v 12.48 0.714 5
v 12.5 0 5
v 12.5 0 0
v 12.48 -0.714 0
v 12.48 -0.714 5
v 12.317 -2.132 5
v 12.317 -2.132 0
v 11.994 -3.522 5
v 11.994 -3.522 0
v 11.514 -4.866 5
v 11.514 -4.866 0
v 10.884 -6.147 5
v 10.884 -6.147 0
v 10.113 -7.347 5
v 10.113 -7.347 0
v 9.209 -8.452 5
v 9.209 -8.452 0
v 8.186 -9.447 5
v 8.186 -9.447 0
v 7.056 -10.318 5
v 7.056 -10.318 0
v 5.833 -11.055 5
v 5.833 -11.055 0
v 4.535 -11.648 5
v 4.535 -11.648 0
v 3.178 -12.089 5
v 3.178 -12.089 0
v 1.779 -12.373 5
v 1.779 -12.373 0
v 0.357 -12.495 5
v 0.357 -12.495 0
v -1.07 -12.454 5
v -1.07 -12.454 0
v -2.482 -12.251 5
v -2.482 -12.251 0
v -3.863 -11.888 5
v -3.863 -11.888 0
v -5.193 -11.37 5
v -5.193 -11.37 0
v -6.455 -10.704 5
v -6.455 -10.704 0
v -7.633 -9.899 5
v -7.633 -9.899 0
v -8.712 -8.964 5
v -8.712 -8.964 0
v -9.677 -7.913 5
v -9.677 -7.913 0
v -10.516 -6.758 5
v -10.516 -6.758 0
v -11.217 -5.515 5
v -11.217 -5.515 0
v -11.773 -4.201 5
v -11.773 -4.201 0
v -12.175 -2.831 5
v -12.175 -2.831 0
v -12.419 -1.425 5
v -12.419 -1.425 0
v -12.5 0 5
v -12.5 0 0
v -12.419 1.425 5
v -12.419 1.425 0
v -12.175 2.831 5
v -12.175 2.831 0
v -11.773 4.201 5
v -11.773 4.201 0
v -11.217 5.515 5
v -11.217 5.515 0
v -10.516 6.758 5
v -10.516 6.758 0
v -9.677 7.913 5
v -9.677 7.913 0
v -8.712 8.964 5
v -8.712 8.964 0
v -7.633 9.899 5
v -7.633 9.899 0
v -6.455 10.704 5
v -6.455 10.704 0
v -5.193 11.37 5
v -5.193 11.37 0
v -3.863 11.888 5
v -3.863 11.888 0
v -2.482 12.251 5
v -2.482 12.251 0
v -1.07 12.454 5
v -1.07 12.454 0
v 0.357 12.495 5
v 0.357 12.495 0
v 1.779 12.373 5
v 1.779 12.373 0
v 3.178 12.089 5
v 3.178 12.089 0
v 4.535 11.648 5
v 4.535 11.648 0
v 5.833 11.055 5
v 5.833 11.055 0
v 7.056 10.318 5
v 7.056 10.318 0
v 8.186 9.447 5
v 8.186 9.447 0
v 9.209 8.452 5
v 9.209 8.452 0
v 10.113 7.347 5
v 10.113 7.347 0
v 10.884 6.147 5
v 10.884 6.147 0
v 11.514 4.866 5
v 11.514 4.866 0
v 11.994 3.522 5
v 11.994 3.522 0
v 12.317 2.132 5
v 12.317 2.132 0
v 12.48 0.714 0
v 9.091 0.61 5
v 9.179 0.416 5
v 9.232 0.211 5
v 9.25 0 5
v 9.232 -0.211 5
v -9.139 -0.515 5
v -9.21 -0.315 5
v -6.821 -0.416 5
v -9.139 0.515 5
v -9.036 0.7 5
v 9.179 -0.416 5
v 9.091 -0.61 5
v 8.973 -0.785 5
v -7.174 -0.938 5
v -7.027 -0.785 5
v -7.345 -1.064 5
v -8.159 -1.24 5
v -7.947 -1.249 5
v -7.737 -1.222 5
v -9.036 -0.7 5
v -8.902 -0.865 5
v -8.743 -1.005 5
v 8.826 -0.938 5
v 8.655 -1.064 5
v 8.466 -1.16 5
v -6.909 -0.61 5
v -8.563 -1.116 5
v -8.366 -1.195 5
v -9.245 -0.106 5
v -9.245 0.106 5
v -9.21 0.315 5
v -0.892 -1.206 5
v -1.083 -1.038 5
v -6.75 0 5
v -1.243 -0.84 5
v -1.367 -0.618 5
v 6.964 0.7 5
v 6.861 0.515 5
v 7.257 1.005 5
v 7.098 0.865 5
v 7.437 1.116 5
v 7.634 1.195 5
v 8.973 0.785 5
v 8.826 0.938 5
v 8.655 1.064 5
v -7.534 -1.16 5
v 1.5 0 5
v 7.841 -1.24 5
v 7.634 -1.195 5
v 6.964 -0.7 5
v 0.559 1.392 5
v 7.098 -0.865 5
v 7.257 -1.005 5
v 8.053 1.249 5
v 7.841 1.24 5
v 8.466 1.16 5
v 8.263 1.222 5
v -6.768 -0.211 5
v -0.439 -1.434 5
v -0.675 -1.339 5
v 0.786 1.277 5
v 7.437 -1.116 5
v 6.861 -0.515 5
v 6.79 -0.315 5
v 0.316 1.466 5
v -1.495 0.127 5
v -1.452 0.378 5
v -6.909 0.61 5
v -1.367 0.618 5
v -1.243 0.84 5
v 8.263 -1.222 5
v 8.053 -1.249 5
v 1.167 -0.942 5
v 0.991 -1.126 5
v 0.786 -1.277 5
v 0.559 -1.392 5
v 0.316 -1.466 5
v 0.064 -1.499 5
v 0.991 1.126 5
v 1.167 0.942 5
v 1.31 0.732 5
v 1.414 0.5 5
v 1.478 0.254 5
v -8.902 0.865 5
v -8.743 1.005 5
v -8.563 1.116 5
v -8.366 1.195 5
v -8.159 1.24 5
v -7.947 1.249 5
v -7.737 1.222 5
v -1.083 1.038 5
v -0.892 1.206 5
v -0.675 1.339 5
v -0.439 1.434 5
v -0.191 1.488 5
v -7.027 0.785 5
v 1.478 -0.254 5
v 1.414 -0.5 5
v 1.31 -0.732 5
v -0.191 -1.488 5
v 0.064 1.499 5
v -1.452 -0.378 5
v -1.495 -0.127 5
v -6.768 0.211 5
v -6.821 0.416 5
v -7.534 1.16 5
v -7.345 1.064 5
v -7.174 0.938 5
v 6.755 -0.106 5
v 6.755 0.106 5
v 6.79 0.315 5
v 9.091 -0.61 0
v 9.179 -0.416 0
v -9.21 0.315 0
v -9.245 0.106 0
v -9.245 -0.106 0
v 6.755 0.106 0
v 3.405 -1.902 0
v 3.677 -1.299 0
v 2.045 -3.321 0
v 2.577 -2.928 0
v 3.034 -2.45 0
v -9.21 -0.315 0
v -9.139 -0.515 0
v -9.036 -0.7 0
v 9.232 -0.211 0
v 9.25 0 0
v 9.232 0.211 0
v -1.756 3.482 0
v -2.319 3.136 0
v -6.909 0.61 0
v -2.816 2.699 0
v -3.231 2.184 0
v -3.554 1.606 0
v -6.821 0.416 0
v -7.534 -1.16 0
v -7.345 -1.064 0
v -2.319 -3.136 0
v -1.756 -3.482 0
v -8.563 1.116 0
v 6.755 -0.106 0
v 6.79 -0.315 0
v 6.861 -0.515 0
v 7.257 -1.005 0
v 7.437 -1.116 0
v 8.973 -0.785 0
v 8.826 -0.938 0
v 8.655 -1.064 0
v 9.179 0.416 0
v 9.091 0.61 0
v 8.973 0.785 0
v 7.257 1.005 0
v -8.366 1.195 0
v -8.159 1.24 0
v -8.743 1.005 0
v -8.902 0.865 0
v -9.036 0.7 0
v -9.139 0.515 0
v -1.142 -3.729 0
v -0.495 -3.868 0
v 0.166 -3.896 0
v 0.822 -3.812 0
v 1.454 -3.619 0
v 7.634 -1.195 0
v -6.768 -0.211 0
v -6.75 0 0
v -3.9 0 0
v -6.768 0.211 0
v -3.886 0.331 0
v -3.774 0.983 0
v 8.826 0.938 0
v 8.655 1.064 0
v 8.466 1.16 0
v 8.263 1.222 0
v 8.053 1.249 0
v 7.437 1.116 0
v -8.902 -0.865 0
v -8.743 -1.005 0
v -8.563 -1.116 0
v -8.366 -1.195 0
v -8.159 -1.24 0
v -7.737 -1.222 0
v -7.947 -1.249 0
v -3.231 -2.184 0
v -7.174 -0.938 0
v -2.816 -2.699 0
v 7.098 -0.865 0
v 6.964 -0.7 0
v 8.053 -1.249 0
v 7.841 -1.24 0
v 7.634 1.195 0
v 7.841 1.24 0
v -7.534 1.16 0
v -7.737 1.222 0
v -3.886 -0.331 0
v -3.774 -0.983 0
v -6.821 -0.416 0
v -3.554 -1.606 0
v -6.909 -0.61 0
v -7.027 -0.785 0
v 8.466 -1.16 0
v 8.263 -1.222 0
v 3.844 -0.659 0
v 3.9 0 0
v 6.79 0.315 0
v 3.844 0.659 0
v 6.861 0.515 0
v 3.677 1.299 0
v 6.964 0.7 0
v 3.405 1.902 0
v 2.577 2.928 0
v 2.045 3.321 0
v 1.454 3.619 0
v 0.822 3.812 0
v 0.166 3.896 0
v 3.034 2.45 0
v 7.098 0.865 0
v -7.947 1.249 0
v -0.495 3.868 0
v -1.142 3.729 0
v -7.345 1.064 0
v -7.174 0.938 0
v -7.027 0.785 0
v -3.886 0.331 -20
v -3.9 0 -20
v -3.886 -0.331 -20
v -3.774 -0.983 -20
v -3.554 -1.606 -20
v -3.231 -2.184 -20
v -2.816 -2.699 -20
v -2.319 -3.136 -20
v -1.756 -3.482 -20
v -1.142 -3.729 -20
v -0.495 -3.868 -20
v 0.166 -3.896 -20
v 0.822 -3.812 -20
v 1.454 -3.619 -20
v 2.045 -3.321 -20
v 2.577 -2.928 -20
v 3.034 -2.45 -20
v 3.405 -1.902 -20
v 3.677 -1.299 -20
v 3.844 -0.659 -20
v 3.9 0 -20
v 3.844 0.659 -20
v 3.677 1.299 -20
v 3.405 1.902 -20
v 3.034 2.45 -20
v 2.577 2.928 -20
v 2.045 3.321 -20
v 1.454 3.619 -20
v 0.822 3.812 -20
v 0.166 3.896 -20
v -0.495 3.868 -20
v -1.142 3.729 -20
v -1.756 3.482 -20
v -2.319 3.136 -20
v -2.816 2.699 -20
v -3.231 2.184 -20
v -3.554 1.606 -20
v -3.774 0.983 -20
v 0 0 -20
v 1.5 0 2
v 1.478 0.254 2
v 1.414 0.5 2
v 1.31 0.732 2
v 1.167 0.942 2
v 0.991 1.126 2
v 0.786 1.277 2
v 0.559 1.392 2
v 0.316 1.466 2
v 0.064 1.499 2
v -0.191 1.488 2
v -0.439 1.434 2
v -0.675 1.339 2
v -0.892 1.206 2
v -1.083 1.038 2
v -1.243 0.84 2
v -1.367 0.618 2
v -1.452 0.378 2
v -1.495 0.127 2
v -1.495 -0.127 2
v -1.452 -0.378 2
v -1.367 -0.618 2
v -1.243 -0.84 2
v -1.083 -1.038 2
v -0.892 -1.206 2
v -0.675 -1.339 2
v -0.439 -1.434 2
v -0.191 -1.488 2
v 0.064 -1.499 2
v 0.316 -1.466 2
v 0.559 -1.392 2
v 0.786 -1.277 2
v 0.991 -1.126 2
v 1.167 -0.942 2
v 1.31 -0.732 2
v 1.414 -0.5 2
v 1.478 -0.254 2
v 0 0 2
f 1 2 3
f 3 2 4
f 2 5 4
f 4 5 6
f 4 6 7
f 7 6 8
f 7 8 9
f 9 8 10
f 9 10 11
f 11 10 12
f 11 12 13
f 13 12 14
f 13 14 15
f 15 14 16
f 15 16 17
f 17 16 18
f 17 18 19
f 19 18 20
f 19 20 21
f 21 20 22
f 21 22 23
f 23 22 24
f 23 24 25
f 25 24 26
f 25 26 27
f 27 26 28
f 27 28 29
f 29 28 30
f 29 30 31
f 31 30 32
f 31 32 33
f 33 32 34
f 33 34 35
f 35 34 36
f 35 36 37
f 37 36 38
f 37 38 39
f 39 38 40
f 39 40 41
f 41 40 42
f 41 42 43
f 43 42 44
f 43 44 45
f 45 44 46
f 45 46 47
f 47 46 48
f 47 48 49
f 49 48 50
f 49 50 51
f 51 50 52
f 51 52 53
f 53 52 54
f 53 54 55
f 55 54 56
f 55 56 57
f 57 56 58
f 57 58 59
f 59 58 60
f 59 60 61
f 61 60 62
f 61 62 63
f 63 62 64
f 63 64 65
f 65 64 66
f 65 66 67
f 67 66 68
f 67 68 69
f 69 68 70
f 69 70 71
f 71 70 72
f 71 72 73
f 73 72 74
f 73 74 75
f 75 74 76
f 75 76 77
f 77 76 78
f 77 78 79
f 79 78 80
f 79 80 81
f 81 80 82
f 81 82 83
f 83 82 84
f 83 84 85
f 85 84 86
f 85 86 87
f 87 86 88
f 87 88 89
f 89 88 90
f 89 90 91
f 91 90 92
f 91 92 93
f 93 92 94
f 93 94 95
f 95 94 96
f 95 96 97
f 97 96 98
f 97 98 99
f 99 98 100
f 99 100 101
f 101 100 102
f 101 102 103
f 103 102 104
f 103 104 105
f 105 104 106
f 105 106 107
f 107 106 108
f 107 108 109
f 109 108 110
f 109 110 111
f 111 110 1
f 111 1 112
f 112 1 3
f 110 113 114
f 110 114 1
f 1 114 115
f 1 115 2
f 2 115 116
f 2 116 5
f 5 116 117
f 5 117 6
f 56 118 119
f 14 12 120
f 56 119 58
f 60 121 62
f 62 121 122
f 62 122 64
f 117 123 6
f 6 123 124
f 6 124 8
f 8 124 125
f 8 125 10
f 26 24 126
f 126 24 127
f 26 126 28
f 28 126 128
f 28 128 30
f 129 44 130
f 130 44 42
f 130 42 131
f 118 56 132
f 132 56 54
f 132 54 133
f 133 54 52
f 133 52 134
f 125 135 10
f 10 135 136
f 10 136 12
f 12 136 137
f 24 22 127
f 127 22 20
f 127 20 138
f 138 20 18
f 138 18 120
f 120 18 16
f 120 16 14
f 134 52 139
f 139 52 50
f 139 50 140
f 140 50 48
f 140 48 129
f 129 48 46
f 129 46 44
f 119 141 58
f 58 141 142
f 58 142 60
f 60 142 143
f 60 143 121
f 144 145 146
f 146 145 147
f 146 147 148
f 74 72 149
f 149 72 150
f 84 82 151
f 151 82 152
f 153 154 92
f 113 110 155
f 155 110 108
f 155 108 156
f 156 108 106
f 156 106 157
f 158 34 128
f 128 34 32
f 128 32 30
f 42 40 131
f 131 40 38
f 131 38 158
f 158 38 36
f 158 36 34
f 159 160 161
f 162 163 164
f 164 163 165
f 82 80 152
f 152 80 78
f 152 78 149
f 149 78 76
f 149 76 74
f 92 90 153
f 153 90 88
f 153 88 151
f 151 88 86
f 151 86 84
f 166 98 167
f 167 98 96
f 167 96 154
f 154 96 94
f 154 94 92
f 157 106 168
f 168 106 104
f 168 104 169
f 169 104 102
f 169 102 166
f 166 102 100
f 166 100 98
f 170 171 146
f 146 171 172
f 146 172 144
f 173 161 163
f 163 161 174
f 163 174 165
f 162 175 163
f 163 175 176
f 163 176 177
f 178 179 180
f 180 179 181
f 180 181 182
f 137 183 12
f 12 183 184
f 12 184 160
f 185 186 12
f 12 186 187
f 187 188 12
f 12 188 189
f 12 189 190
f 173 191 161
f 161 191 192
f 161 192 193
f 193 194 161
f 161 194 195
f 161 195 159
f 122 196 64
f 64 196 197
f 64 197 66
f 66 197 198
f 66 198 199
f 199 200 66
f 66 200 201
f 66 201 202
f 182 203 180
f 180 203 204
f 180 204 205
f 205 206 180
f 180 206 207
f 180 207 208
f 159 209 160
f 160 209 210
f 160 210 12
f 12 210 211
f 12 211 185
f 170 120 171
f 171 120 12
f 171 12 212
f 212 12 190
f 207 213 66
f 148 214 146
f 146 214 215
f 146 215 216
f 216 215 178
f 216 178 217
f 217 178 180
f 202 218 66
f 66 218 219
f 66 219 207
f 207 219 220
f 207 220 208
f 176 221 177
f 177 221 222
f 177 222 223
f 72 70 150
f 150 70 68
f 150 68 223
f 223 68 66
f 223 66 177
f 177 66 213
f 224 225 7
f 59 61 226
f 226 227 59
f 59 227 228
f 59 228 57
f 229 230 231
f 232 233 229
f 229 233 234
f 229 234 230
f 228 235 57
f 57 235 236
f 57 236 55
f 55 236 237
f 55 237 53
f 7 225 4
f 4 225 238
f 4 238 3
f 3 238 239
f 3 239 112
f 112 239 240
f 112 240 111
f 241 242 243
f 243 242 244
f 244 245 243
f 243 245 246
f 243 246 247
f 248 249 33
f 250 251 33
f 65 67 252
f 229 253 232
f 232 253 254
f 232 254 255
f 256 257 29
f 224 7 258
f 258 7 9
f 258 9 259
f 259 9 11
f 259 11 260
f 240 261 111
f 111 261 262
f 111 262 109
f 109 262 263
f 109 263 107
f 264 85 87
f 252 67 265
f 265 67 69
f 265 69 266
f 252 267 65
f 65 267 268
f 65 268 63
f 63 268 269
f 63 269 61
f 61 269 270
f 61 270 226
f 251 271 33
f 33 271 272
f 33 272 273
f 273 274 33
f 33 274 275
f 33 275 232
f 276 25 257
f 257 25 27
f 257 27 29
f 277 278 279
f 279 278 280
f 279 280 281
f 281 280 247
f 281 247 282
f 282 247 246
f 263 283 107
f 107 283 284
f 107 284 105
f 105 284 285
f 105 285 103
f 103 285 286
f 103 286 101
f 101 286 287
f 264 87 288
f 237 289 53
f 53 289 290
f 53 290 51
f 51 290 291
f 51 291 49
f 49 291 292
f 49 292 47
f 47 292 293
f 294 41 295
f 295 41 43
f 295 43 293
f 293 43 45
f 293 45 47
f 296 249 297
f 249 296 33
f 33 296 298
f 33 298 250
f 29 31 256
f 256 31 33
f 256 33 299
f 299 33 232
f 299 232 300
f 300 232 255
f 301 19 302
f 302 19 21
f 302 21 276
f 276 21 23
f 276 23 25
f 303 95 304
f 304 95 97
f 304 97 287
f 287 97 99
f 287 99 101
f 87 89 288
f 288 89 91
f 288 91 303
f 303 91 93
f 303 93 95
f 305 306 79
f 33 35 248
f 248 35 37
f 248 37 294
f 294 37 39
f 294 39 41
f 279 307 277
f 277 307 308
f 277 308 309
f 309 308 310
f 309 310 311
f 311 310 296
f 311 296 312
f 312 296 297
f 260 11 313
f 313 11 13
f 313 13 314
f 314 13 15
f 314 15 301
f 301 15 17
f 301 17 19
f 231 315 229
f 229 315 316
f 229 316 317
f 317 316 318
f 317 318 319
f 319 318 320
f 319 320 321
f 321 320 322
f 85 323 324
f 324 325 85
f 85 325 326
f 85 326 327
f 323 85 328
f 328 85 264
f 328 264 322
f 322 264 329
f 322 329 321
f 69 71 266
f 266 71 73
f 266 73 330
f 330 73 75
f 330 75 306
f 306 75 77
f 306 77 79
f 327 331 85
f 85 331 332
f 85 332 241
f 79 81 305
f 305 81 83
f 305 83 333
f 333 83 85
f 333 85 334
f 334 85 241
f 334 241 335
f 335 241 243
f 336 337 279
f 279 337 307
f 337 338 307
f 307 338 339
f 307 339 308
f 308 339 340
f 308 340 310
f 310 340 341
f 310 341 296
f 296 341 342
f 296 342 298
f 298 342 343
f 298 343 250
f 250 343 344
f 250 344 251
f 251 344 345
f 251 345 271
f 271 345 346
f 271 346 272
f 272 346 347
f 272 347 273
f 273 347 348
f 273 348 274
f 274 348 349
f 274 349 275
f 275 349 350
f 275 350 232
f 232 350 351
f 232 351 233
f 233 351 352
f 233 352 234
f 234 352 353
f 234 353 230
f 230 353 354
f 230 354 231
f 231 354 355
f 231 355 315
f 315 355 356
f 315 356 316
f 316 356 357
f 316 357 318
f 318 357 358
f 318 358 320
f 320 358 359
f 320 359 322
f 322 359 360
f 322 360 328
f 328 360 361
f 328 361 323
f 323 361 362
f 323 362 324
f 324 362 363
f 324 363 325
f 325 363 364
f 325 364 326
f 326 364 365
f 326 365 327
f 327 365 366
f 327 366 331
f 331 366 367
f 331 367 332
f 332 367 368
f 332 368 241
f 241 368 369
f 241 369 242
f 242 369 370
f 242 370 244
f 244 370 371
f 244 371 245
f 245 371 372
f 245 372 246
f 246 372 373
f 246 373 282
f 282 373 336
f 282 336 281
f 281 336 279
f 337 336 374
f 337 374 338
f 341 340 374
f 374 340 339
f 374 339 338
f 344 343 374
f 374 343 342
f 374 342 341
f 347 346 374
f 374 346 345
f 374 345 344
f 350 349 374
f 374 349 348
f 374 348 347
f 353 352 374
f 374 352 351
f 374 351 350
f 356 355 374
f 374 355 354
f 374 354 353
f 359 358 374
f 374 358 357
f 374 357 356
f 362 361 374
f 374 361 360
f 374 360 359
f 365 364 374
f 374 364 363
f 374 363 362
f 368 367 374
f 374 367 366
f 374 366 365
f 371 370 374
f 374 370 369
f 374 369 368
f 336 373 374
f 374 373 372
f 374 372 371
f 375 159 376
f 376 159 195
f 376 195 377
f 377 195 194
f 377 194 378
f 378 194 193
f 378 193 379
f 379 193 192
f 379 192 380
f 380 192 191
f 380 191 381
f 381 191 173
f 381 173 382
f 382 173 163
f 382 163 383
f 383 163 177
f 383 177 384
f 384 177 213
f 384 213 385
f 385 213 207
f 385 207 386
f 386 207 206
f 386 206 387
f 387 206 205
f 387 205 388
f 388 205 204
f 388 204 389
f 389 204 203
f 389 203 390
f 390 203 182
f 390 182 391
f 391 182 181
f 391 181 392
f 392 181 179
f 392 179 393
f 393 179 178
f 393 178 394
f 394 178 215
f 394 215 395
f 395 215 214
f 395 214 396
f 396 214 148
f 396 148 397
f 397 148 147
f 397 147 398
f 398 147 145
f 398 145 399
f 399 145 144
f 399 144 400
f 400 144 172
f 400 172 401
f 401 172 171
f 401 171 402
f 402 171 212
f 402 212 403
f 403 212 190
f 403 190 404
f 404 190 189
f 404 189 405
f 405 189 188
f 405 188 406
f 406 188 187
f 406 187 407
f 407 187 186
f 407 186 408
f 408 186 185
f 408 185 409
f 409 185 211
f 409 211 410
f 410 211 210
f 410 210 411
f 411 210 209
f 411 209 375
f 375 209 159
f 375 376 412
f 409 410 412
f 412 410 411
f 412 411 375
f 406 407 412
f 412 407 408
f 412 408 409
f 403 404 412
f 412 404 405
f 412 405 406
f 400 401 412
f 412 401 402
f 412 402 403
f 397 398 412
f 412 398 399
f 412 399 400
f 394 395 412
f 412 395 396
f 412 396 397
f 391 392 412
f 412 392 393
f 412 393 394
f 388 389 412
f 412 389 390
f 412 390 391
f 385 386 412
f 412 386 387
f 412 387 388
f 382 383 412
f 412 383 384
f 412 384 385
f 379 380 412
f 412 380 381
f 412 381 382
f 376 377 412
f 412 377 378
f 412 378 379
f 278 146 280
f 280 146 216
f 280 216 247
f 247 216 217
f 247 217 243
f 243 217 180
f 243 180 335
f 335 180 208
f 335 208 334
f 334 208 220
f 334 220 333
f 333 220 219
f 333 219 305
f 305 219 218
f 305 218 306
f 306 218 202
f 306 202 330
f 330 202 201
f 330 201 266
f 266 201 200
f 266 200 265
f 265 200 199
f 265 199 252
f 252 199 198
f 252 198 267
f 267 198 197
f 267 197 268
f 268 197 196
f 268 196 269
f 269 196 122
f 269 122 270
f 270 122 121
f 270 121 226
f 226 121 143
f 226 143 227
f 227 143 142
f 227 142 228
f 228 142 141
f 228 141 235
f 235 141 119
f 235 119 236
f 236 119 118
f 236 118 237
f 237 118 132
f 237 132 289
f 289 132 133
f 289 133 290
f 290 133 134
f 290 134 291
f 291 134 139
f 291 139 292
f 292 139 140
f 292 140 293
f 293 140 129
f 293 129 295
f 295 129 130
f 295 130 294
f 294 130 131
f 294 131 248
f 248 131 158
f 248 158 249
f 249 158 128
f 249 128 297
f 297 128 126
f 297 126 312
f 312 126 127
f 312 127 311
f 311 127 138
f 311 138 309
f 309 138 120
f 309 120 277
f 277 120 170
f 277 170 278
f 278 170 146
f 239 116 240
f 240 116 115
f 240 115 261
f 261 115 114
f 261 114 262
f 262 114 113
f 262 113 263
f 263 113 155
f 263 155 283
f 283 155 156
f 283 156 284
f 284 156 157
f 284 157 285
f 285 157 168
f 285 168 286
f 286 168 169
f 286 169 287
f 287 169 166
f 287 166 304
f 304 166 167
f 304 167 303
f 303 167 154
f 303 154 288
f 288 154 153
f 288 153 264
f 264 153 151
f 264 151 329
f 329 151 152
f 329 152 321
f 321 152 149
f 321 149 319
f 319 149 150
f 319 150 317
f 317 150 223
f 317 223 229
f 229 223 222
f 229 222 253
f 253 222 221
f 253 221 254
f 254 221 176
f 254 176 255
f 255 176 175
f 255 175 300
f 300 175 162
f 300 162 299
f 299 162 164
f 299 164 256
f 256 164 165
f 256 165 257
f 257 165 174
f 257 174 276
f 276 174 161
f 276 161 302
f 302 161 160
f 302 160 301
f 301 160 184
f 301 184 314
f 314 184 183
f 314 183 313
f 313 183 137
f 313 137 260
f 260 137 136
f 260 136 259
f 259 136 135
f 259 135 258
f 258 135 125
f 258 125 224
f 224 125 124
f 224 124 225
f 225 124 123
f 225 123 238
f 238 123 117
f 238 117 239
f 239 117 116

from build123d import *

# Parameters (mm, degrees)
SKETCH1_R           = 12.5
BOSS_EXTRUDE1_DEPTH = 5
SKETCH2_R           = 3.9
BOSS_EXTRUDE2_DEPTH = 20
SKETCH3_R           = 1.5
CUT_EXTRUDE1_DEPTH  = 3
SKETCH4_R           = 1.25
CUT_EXTRUDE2_DEPTH  = 10


with BuildPart() as part:
    # Sketch1 → Boss-Extrude1 (new body)
    with BuildSketch(Plane.XY):
        Circle(SKETCH1_R)
    extrude(amount=BOSS_EXTRUDE1_DEPTH)

    # Sketch2 → Boss-Extrude2 (add)
    with BuildSketch(Plane(origin=(0, 0, 0), x_dir=(-1, 0, 0), z_dir=(0, 0, -1))):
        Circle(SKETCH2_R)
    extrude(amount=BOSS_EXTRUDE2_DEPTH)

    # Sketch3 → Cut-Extrude1 (cut)
    with BuildSketch(Plane.XY.offset(5)):
        Circle(SKETCH3_R)
    extrude(amount=-CUT_EXTRUDE1_DEPTH, mode=Mode.SUBTRACT)

    # Sketch4 → Cut-Extrude2 (cut)
    with BuildSketch(Plane.XY.offset(5)):
        with Locations((8, 0)):
            Circle(SKETCH4_R)
        with Locations((-8, 0)):
            Circle(SKETCH4_R)
    extrude(amount=-CUT_EXTRUDE2_DEPTH, mode=Mode.SUBTRACT)


solid = part.part
